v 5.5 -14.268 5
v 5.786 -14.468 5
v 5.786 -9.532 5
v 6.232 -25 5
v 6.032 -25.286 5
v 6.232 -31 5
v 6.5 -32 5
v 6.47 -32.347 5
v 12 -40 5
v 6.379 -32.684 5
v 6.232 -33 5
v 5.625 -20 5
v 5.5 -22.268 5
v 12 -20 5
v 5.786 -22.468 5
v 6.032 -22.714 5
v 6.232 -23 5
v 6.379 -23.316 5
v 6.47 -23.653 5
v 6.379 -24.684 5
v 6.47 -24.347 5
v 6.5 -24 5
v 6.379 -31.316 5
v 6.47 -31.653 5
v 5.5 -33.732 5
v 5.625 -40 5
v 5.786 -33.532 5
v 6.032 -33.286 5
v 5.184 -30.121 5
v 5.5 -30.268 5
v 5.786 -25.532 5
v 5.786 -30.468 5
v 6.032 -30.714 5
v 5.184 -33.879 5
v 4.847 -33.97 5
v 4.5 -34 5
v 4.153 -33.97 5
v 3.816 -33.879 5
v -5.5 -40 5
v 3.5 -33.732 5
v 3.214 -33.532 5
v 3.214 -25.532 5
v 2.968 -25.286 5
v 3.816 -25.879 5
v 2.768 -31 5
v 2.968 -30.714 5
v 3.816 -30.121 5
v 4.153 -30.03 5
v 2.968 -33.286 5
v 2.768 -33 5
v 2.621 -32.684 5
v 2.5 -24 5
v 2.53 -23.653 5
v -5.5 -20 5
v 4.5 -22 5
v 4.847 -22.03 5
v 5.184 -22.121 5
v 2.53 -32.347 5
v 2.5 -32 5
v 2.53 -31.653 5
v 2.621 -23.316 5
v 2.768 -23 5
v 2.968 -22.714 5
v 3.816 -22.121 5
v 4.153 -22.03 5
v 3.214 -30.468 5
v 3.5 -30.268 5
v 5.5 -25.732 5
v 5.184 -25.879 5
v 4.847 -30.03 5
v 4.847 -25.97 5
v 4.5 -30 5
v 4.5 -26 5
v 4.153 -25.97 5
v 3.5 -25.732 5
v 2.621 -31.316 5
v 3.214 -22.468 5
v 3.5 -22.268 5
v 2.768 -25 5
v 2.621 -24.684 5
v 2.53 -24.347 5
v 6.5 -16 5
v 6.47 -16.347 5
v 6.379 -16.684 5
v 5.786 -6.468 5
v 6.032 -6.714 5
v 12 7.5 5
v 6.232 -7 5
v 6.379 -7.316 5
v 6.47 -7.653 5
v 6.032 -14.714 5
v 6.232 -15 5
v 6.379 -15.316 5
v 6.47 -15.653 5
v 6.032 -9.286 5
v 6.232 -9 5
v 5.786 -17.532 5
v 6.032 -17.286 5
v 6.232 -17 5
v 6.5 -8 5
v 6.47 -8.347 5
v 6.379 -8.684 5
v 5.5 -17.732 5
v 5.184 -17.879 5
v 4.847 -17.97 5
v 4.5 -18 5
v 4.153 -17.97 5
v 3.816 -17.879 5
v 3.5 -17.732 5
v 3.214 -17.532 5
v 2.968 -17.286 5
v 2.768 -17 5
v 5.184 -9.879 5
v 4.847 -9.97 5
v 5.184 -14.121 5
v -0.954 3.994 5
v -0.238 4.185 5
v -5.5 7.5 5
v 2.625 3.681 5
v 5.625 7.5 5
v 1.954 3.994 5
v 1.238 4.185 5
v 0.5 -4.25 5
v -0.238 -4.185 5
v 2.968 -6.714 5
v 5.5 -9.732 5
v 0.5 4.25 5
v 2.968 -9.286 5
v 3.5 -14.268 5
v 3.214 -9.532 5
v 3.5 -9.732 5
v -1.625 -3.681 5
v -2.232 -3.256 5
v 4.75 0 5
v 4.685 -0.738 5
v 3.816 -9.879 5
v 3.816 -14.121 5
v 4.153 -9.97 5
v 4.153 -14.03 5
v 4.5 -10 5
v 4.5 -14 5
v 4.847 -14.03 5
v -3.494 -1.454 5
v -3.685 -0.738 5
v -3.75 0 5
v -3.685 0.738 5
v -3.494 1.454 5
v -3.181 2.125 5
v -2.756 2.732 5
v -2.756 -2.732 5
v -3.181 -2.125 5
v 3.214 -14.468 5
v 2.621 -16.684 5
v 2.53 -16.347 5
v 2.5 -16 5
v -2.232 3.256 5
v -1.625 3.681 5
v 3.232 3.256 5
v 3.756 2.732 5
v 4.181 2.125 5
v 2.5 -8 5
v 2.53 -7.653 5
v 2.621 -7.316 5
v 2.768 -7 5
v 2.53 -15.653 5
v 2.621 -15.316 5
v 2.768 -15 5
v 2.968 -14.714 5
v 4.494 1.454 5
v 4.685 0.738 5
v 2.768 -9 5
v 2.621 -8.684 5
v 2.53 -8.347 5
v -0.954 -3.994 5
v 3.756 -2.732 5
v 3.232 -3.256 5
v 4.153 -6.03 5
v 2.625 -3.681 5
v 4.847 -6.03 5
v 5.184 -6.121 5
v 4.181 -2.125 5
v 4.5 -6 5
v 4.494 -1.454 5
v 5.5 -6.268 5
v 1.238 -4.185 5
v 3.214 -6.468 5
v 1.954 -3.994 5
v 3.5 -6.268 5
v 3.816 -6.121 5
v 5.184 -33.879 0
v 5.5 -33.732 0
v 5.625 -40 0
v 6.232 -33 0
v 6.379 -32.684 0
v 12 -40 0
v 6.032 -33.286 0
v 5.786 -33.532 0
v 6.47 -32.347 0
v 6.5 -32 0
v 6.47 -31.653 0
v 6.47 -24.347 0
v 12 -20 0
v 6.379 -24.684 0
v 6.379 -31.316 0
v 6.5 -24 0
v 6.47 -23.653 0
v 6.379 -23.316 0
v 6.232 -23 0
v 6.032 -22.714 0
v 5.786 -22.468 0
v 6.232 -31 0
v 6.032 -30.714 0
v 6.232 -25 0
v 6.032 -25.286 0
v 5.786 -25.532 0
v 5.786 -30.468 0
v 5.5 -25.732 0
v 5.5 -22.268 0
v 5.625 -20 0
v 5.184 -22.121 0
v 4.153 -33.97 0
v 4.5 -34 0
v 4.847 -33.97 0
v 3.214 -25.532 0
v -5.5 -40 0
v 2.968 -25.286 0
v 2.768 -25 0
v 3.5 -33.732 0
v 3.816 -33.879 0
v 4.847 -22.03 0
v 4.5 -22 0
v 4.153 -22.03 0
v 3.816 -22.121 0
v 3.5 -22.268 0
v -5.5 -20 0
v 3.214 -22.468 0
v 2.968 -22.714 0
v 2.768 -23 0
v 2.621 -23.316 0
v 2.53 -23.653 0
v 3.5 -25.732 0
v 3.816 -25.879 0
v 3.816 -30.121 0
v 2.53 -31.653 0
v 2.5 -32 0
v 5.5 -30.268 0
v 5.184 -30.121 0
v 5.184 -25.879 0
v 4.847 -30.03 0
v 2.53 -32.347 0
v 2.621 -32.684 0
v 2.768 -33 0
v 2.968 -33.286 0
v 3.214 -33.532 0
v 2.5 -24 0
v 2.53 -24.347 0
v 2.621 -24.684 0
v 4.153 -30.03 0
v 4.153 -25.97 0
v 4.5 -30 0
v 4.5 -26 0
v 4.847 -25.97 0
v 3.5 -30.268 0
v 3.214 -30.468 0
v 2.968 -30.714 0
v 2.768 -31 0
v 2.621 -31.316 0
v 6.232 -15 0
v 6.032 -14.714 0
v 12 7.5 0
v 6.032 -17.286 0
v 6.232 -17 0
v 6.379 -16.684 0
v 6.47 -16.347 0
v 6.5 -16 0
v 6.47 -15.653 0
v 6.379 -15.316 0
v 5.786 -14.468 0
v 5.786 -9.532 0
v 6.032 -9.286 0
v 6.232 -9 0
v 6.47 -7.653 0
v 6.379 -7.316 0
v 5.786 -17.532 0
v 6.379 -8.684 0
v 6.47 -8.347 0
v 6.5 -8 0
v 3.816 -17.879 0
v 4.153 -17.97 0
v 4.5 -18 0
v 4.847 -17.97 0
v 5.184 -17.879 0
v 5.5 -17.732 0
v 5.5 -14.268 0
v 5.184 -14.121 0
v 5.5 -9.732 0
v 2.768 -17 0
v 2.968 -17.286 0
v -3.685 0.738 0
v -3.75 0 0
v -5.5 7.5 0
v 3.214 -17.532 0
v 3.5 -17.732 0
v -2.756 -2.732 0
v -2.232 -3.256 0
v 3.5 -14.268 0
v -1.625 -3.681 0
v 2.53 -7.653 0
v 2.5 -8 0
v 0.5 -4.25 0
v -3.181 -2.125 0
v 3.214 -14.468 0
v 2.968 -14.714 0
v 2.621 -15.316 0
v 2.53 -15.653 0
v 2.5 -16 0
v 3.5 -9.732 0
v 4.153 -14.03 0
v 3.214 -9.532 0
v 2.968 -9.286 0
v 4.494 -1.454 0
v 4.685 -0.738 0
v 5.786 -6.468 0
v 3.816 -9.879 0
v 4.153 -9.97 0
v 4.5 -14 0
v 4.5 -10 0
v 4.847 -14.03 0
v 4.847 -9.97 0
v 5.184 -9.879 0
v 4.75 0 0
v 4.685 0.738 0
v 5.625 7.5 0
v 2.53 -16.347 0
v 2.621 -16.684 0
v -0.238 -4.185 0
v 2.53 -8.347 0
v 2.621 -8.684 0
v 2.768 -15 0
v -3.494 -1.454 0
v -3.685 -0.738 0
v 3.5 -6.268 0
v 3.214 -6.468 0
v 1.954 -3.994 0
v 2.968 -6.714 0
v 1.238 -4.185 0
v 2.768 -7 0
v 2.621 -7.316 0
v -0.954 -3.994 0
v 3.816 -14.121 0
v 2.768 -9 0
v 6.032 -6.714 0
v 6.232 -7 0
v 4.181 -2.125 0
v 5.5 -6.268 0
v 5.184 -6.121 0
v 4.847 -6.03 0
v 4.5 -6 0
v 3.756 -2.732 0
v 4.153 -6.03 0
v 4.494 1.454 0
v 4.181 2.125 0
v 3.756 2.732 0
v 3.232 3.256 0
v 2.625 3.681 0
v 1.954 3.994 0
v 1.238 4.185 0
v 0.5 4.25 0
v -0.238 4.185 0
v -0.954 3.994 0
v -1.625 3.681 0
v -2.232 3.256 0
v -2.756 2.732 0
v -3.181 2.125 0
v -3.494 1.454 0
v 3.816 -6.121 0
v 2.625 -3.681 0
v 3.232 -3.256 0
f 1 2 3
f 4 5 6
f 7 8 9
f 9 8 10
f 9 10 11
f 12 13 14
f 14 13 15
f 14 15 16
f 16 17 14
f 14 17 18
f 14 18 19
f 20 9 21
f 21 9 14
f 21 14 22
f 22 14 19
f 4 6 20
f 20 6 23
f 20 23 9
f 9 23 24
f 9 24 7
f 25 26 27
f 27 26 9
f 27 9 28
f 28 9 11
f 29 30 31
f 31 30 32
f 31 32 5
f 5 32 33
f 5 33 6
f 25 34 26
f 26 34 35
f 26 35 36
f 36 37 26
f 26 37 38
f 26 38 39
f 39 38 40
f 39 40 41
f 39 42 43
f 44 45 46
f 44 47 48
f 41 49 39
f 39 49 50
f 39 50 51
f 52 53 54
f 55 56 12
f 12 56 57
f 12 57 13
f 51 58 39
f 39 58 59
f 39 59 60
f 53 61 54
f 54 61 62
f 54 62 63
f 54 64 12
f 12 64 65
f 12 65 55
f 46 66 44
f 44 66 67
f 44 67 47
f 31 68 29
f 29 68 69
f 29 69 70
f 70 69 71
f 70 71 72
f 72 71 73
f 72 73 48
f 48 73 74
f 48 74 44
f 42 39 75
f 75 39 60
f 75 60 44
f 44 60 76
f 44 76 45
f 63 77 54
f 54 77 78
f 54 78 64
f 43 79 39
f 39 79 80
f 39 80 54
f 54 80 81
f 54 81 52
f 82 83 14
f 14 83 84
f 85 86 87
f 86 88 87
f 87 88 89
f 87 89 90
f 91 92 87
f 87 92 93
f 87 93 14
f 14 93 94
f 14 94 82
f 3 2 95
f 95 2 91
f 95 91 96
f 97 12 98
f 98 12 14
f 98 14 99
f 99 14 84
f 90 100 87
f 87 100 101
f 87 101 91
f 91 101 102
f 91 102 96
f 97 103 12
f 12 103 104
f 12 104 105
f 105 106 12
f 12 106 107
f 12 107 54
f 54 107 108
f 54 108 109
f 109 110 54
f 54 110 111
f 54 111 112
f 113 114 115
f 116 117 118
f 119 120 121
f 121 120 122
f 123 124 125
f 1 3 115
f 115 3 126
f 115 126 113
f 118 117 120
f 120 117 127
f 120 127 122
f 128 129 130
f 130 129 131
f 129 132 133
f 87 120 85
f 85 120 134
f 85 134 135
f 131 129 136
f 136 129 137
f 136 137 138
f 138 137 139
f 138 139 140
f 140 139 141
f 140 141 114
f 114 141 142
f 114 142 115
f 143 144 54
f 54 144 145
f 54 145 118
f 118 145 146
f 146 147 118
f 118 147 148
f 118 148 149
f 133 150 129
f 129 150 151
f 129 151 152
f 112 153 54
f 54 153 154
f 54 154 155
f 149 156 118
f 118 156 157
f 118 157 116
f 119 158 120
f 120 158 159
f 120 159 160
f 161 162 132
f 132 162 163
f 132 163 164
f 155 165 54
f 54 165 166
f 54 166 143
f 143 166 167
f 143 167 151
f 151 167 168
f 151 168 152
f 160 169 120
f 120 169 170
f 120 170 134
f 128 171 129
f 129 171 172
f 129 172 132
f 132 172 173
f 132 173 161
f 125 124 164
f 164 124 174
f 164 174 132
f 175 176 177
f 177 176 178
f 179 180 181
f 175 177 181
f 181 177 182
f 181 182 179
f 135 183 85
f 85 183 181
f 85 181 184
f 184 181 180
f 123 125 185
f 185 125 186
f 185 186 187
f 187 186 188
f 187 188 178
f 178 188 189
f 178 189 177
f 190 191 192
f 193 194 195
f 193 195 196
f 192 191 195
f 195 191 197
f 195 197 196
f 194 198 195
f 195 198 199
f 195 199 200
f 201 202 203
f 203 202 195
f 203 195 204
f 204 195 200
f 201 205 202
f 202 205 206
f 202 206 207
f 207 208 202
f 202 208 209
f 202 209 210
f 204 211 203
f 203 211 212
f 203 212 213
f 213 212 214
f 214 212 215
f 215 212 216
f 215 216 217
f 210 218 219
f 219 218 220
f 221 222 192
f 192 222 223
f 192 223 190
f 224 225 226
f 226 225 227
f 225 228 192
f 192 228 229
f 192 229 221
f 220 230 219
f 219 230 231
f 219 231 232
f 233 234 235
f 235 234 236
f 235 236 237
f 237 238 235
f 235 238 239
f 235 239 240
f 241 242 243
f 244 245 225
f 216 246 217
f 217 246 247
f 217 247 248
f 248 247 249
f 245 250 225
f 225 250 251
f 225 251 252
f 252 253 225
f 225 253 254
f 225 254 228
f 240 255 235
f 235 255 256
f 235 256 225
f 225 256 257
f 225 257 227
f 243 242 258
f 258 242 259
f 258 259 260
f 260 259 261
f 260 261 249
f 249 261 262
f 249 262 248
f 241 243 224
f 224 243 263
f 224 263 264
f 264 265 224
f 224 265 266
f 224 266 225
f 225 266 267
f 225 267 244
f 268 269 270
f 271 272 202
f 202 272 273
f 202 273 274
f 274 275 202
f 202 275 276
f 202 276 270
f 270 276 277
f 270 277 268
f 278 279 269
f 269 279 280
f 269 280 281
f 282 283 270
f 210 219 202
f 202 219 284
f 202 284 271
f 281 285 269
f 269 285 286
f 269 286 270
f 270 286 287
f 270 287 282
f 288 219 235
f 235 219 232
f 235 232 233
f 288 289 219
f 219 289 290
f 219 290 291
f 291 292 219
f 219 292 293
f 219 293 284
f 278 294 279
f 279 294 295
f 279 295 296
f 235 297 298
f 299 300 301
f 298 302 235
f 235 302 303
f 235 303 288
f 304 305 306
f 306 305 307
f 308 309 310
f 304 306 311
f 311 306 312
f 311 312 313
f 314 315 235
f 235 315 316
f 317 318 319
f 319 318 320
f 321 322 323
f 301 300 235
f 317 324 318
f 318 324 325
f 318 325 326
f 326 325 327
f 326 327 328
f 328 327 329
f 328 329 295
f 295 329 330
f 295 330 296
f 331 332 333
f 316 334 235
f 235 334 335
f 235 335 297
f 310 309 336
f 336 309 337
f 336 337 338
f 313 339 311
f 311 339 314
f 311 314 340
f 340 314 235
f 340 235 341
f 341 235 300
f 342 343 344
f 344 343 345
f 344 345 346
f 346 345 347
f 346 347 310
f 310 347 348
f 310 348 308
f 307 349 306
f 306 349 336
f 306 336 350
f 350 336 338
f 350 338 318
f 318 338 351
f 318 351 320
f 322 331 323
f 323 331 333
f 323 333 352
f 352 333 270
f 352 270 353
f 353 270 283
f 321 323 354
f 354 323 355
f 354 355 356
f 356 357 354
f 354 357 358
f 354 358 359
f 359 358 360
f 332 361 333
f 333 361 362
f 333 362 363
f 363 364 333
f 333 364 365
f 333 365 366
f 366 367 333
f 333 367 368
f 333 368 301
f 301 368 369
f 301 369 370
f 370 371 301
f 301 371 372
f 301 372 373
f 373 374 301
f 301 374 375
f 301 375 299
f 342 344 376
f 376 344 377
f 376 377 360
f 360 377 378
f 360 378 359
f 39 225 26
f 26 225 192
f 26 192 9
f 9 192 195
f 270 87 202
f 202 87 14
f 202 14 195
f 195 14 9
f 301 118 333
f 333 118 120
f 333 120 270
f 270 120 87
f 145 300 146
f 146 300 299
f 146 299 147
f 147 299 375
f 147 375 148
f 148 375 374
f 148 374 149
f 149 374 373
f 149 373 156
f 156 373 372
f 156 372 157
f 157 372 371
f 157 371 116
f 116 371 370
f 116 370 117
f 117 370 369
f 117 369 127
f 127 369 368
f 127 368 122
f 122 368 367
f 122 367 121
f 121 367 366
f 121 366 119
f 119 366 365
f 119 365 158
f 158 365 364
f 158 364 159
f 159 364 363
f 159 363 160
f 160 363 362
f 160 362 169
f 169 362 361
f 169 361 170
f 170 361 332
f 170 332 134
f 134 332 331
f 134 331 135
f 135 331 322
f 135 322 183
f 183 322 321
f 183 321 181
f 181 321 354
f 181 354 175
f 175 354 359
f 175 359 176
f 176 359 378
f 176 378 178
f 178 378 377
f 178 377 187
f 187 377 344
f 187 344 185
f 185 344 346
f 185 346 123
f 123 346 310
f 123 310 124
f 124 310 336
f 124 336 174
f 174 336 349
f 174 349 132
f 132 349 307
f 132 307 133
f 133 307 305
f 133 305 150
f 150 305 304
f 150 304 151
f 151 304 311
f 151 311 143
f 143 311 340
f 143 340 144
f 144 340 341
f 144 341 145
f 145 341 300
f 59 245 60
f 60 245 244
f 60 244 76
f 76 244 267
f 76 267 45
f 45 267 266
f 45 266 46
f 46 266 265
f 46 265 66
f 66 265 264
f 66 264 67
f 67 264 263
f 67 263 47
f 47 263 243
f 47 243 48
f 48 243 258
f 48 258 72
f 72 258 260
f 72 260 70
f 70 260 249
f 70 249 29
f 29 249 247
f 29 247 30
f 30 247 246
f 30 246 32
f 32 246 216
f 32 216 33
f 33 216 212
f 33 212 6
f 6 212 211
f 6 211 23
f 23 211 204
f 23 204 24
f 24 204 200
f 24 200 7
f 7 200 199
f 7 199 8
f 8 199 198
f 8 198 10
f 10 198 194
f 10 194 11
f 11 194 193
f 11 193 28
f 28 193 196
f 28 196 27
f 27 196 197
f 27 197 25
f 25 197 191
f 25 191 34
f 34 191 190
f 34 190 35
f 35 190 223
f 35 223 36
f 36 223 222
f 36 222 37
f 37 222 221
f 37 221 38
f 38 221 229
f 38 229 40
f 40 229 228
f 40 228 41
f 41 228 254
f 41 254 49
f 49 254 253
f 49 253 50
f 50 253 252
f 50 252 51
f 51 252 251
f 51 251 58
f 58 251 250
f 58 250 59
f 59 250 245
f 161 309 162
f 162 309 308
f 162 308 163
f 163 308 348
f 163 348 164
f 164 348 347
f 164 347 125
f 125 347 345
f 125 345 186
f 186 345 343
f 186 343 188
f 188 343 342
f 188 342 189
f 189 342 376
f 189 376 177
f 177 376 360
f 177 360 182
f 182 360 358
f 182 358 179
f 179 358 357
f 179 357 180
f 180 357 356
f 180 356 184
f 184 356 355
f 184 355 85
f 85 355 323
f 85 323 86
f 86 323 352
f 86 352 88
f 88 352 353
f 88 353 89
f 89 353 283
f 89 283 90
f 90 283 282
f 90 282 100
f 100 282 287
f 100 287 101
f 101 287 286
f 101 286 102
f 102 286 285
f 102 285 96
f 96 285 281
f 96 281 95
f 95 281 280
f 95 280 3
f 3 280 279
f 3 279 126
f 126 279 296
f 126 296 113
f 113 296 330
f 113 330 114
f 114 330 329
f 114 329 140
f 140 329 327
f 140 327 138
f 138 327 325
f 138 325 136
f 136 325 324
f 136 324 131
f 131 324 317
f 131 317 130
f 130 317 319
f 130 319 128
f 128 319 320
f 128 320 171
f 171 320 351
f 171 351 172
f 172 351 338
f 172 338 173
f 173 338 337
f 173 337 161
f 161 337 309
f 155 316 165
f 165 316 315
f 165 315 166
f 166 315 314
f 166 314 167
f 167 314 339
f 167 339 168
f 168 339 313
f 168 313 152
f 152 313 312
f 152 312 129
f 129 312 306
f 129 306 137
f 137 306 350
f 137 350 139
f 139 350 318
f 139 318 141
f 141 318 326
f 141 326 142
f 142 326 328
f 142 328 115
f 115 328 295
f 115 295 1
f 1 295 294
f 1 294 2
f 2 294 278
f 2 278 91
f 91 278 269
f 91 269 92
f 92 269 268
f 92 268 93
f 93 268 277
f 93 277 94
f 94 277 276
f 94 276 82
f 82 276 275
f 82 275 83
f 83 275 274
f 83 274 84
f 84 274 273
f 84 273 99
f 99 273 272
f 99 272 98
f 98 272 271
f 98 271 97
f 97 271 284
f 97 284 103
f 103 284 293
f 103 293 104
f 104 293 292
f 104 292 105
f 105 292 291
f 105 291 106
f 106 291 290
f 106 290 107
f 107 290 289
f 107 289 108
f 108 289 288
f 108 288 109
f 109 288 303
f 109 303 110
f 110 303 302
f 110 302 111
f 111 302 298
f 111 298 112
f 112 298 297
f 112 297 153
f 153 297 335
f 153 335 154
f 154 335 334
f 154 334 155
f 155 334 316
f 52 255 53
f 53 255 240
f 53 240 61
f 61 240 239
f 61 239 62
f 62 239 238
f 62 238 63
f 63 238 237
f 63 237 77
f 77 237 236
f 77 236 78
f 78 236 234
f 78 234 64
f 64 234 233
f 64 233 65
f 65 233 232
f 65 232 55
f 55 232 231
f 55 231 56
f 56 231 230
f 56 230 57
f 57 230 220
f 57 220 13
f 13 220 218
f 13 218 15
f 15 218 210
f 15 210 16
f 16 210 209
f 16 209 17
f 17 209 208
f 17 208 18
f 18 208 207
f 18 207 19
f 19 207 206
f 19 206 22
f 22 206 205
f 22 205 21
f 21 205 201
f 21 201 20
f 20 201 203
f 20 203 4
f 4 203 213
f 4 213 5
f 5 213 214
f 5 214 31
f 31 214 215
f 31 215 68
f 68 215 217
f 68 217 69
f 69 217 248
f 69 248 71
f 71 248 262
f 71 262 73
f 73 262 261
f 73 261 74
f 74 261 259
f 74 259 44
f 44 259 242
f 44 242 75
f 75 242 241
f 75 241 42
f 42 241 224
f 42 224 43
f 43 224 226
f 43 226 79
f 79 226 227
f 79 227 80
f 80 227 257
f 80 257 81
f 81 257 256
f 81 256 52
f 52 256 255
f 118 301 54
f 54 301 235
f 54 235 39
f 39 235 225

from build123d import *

# Parameters (mm, degrees)
CROQUIS1_W              = 24
CROQUIS1_H              = 47.5
CROQUIS1_R              = 2
CROQUIS1_R_2            = 4.25
SALIENTE_EXTRUIR1_DEPTH = 5
CORTAR_EXTRUIR2_DEPTH   = 5


with BuildPart() as part:
    # Croquis1 → Saliente-Extruir1 (new body)
    with BuildSketch(Plane.XY):
        with Locations((0, -16.25)):
            Rectangle(CROQUIS1_W, CROQUIS1_H)
        with Locations((4.5, -8)):
            Circle(CROQUIS1_R, mode=Mode.SUBTRACT)
        with Locations((4.5, -16)):
            Circle(CROQUIS1_R, mode=Mode.SUBTRACT)
        with Locations((4.5, -24)):
            Circle(CROQUIS1_R, mode=Mode.SUBTRACT)
        with Locations((0.5, 0)):
            Circle(CROQUIS1_R_2, mode=Mode.SUBTRACT)
        with Locations((4.5, -32)):
            Circle(CROQUIS1_R, mode=Mode.SUBTRACT)
    extrude(amount=SALIENTE_EXTRUIR1_DEPTH)

    # Croquis2 → Cortar-Extruir2 (cut)
    with BuildSketch(Plane(origin=(0, 0, 0), x_dir=(-1, 0, 0), z_dir=(0, 0, -1))):
        Polygon((5.5, 7.5), (12, 7.5), (12, -43.69397747), (5.5, -43.69397747), (5.5, -29.215049773), align=None)
    extrude(amount=-CORTAR_EXTRUIR2_DEPTH, mode=Mode.SUBTRACT)


solid = part.part
